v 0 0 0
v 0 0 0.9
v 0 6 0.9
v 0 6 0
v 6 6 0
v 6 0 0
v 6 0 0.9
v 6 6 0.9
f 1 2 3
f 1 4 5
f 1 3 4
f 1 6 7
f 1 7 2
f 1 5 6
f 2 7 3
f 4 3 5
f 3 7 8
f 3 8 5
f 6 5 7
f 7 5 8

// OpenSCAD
/* Warning, this is a very basic generator with a lot of approximation 
input data : [VQFN, 5KX, 6x6x0.9mm, 36, , A, C04-00455A]
generated by com.zoubworld.electronics.cad.model3d.Basic
Date : Sun Feb 15 10:50:48 CET 2026
*/

//body
color("black")
translate([0,0,0])
cube([6.0,6.0,0.9], center=false);
